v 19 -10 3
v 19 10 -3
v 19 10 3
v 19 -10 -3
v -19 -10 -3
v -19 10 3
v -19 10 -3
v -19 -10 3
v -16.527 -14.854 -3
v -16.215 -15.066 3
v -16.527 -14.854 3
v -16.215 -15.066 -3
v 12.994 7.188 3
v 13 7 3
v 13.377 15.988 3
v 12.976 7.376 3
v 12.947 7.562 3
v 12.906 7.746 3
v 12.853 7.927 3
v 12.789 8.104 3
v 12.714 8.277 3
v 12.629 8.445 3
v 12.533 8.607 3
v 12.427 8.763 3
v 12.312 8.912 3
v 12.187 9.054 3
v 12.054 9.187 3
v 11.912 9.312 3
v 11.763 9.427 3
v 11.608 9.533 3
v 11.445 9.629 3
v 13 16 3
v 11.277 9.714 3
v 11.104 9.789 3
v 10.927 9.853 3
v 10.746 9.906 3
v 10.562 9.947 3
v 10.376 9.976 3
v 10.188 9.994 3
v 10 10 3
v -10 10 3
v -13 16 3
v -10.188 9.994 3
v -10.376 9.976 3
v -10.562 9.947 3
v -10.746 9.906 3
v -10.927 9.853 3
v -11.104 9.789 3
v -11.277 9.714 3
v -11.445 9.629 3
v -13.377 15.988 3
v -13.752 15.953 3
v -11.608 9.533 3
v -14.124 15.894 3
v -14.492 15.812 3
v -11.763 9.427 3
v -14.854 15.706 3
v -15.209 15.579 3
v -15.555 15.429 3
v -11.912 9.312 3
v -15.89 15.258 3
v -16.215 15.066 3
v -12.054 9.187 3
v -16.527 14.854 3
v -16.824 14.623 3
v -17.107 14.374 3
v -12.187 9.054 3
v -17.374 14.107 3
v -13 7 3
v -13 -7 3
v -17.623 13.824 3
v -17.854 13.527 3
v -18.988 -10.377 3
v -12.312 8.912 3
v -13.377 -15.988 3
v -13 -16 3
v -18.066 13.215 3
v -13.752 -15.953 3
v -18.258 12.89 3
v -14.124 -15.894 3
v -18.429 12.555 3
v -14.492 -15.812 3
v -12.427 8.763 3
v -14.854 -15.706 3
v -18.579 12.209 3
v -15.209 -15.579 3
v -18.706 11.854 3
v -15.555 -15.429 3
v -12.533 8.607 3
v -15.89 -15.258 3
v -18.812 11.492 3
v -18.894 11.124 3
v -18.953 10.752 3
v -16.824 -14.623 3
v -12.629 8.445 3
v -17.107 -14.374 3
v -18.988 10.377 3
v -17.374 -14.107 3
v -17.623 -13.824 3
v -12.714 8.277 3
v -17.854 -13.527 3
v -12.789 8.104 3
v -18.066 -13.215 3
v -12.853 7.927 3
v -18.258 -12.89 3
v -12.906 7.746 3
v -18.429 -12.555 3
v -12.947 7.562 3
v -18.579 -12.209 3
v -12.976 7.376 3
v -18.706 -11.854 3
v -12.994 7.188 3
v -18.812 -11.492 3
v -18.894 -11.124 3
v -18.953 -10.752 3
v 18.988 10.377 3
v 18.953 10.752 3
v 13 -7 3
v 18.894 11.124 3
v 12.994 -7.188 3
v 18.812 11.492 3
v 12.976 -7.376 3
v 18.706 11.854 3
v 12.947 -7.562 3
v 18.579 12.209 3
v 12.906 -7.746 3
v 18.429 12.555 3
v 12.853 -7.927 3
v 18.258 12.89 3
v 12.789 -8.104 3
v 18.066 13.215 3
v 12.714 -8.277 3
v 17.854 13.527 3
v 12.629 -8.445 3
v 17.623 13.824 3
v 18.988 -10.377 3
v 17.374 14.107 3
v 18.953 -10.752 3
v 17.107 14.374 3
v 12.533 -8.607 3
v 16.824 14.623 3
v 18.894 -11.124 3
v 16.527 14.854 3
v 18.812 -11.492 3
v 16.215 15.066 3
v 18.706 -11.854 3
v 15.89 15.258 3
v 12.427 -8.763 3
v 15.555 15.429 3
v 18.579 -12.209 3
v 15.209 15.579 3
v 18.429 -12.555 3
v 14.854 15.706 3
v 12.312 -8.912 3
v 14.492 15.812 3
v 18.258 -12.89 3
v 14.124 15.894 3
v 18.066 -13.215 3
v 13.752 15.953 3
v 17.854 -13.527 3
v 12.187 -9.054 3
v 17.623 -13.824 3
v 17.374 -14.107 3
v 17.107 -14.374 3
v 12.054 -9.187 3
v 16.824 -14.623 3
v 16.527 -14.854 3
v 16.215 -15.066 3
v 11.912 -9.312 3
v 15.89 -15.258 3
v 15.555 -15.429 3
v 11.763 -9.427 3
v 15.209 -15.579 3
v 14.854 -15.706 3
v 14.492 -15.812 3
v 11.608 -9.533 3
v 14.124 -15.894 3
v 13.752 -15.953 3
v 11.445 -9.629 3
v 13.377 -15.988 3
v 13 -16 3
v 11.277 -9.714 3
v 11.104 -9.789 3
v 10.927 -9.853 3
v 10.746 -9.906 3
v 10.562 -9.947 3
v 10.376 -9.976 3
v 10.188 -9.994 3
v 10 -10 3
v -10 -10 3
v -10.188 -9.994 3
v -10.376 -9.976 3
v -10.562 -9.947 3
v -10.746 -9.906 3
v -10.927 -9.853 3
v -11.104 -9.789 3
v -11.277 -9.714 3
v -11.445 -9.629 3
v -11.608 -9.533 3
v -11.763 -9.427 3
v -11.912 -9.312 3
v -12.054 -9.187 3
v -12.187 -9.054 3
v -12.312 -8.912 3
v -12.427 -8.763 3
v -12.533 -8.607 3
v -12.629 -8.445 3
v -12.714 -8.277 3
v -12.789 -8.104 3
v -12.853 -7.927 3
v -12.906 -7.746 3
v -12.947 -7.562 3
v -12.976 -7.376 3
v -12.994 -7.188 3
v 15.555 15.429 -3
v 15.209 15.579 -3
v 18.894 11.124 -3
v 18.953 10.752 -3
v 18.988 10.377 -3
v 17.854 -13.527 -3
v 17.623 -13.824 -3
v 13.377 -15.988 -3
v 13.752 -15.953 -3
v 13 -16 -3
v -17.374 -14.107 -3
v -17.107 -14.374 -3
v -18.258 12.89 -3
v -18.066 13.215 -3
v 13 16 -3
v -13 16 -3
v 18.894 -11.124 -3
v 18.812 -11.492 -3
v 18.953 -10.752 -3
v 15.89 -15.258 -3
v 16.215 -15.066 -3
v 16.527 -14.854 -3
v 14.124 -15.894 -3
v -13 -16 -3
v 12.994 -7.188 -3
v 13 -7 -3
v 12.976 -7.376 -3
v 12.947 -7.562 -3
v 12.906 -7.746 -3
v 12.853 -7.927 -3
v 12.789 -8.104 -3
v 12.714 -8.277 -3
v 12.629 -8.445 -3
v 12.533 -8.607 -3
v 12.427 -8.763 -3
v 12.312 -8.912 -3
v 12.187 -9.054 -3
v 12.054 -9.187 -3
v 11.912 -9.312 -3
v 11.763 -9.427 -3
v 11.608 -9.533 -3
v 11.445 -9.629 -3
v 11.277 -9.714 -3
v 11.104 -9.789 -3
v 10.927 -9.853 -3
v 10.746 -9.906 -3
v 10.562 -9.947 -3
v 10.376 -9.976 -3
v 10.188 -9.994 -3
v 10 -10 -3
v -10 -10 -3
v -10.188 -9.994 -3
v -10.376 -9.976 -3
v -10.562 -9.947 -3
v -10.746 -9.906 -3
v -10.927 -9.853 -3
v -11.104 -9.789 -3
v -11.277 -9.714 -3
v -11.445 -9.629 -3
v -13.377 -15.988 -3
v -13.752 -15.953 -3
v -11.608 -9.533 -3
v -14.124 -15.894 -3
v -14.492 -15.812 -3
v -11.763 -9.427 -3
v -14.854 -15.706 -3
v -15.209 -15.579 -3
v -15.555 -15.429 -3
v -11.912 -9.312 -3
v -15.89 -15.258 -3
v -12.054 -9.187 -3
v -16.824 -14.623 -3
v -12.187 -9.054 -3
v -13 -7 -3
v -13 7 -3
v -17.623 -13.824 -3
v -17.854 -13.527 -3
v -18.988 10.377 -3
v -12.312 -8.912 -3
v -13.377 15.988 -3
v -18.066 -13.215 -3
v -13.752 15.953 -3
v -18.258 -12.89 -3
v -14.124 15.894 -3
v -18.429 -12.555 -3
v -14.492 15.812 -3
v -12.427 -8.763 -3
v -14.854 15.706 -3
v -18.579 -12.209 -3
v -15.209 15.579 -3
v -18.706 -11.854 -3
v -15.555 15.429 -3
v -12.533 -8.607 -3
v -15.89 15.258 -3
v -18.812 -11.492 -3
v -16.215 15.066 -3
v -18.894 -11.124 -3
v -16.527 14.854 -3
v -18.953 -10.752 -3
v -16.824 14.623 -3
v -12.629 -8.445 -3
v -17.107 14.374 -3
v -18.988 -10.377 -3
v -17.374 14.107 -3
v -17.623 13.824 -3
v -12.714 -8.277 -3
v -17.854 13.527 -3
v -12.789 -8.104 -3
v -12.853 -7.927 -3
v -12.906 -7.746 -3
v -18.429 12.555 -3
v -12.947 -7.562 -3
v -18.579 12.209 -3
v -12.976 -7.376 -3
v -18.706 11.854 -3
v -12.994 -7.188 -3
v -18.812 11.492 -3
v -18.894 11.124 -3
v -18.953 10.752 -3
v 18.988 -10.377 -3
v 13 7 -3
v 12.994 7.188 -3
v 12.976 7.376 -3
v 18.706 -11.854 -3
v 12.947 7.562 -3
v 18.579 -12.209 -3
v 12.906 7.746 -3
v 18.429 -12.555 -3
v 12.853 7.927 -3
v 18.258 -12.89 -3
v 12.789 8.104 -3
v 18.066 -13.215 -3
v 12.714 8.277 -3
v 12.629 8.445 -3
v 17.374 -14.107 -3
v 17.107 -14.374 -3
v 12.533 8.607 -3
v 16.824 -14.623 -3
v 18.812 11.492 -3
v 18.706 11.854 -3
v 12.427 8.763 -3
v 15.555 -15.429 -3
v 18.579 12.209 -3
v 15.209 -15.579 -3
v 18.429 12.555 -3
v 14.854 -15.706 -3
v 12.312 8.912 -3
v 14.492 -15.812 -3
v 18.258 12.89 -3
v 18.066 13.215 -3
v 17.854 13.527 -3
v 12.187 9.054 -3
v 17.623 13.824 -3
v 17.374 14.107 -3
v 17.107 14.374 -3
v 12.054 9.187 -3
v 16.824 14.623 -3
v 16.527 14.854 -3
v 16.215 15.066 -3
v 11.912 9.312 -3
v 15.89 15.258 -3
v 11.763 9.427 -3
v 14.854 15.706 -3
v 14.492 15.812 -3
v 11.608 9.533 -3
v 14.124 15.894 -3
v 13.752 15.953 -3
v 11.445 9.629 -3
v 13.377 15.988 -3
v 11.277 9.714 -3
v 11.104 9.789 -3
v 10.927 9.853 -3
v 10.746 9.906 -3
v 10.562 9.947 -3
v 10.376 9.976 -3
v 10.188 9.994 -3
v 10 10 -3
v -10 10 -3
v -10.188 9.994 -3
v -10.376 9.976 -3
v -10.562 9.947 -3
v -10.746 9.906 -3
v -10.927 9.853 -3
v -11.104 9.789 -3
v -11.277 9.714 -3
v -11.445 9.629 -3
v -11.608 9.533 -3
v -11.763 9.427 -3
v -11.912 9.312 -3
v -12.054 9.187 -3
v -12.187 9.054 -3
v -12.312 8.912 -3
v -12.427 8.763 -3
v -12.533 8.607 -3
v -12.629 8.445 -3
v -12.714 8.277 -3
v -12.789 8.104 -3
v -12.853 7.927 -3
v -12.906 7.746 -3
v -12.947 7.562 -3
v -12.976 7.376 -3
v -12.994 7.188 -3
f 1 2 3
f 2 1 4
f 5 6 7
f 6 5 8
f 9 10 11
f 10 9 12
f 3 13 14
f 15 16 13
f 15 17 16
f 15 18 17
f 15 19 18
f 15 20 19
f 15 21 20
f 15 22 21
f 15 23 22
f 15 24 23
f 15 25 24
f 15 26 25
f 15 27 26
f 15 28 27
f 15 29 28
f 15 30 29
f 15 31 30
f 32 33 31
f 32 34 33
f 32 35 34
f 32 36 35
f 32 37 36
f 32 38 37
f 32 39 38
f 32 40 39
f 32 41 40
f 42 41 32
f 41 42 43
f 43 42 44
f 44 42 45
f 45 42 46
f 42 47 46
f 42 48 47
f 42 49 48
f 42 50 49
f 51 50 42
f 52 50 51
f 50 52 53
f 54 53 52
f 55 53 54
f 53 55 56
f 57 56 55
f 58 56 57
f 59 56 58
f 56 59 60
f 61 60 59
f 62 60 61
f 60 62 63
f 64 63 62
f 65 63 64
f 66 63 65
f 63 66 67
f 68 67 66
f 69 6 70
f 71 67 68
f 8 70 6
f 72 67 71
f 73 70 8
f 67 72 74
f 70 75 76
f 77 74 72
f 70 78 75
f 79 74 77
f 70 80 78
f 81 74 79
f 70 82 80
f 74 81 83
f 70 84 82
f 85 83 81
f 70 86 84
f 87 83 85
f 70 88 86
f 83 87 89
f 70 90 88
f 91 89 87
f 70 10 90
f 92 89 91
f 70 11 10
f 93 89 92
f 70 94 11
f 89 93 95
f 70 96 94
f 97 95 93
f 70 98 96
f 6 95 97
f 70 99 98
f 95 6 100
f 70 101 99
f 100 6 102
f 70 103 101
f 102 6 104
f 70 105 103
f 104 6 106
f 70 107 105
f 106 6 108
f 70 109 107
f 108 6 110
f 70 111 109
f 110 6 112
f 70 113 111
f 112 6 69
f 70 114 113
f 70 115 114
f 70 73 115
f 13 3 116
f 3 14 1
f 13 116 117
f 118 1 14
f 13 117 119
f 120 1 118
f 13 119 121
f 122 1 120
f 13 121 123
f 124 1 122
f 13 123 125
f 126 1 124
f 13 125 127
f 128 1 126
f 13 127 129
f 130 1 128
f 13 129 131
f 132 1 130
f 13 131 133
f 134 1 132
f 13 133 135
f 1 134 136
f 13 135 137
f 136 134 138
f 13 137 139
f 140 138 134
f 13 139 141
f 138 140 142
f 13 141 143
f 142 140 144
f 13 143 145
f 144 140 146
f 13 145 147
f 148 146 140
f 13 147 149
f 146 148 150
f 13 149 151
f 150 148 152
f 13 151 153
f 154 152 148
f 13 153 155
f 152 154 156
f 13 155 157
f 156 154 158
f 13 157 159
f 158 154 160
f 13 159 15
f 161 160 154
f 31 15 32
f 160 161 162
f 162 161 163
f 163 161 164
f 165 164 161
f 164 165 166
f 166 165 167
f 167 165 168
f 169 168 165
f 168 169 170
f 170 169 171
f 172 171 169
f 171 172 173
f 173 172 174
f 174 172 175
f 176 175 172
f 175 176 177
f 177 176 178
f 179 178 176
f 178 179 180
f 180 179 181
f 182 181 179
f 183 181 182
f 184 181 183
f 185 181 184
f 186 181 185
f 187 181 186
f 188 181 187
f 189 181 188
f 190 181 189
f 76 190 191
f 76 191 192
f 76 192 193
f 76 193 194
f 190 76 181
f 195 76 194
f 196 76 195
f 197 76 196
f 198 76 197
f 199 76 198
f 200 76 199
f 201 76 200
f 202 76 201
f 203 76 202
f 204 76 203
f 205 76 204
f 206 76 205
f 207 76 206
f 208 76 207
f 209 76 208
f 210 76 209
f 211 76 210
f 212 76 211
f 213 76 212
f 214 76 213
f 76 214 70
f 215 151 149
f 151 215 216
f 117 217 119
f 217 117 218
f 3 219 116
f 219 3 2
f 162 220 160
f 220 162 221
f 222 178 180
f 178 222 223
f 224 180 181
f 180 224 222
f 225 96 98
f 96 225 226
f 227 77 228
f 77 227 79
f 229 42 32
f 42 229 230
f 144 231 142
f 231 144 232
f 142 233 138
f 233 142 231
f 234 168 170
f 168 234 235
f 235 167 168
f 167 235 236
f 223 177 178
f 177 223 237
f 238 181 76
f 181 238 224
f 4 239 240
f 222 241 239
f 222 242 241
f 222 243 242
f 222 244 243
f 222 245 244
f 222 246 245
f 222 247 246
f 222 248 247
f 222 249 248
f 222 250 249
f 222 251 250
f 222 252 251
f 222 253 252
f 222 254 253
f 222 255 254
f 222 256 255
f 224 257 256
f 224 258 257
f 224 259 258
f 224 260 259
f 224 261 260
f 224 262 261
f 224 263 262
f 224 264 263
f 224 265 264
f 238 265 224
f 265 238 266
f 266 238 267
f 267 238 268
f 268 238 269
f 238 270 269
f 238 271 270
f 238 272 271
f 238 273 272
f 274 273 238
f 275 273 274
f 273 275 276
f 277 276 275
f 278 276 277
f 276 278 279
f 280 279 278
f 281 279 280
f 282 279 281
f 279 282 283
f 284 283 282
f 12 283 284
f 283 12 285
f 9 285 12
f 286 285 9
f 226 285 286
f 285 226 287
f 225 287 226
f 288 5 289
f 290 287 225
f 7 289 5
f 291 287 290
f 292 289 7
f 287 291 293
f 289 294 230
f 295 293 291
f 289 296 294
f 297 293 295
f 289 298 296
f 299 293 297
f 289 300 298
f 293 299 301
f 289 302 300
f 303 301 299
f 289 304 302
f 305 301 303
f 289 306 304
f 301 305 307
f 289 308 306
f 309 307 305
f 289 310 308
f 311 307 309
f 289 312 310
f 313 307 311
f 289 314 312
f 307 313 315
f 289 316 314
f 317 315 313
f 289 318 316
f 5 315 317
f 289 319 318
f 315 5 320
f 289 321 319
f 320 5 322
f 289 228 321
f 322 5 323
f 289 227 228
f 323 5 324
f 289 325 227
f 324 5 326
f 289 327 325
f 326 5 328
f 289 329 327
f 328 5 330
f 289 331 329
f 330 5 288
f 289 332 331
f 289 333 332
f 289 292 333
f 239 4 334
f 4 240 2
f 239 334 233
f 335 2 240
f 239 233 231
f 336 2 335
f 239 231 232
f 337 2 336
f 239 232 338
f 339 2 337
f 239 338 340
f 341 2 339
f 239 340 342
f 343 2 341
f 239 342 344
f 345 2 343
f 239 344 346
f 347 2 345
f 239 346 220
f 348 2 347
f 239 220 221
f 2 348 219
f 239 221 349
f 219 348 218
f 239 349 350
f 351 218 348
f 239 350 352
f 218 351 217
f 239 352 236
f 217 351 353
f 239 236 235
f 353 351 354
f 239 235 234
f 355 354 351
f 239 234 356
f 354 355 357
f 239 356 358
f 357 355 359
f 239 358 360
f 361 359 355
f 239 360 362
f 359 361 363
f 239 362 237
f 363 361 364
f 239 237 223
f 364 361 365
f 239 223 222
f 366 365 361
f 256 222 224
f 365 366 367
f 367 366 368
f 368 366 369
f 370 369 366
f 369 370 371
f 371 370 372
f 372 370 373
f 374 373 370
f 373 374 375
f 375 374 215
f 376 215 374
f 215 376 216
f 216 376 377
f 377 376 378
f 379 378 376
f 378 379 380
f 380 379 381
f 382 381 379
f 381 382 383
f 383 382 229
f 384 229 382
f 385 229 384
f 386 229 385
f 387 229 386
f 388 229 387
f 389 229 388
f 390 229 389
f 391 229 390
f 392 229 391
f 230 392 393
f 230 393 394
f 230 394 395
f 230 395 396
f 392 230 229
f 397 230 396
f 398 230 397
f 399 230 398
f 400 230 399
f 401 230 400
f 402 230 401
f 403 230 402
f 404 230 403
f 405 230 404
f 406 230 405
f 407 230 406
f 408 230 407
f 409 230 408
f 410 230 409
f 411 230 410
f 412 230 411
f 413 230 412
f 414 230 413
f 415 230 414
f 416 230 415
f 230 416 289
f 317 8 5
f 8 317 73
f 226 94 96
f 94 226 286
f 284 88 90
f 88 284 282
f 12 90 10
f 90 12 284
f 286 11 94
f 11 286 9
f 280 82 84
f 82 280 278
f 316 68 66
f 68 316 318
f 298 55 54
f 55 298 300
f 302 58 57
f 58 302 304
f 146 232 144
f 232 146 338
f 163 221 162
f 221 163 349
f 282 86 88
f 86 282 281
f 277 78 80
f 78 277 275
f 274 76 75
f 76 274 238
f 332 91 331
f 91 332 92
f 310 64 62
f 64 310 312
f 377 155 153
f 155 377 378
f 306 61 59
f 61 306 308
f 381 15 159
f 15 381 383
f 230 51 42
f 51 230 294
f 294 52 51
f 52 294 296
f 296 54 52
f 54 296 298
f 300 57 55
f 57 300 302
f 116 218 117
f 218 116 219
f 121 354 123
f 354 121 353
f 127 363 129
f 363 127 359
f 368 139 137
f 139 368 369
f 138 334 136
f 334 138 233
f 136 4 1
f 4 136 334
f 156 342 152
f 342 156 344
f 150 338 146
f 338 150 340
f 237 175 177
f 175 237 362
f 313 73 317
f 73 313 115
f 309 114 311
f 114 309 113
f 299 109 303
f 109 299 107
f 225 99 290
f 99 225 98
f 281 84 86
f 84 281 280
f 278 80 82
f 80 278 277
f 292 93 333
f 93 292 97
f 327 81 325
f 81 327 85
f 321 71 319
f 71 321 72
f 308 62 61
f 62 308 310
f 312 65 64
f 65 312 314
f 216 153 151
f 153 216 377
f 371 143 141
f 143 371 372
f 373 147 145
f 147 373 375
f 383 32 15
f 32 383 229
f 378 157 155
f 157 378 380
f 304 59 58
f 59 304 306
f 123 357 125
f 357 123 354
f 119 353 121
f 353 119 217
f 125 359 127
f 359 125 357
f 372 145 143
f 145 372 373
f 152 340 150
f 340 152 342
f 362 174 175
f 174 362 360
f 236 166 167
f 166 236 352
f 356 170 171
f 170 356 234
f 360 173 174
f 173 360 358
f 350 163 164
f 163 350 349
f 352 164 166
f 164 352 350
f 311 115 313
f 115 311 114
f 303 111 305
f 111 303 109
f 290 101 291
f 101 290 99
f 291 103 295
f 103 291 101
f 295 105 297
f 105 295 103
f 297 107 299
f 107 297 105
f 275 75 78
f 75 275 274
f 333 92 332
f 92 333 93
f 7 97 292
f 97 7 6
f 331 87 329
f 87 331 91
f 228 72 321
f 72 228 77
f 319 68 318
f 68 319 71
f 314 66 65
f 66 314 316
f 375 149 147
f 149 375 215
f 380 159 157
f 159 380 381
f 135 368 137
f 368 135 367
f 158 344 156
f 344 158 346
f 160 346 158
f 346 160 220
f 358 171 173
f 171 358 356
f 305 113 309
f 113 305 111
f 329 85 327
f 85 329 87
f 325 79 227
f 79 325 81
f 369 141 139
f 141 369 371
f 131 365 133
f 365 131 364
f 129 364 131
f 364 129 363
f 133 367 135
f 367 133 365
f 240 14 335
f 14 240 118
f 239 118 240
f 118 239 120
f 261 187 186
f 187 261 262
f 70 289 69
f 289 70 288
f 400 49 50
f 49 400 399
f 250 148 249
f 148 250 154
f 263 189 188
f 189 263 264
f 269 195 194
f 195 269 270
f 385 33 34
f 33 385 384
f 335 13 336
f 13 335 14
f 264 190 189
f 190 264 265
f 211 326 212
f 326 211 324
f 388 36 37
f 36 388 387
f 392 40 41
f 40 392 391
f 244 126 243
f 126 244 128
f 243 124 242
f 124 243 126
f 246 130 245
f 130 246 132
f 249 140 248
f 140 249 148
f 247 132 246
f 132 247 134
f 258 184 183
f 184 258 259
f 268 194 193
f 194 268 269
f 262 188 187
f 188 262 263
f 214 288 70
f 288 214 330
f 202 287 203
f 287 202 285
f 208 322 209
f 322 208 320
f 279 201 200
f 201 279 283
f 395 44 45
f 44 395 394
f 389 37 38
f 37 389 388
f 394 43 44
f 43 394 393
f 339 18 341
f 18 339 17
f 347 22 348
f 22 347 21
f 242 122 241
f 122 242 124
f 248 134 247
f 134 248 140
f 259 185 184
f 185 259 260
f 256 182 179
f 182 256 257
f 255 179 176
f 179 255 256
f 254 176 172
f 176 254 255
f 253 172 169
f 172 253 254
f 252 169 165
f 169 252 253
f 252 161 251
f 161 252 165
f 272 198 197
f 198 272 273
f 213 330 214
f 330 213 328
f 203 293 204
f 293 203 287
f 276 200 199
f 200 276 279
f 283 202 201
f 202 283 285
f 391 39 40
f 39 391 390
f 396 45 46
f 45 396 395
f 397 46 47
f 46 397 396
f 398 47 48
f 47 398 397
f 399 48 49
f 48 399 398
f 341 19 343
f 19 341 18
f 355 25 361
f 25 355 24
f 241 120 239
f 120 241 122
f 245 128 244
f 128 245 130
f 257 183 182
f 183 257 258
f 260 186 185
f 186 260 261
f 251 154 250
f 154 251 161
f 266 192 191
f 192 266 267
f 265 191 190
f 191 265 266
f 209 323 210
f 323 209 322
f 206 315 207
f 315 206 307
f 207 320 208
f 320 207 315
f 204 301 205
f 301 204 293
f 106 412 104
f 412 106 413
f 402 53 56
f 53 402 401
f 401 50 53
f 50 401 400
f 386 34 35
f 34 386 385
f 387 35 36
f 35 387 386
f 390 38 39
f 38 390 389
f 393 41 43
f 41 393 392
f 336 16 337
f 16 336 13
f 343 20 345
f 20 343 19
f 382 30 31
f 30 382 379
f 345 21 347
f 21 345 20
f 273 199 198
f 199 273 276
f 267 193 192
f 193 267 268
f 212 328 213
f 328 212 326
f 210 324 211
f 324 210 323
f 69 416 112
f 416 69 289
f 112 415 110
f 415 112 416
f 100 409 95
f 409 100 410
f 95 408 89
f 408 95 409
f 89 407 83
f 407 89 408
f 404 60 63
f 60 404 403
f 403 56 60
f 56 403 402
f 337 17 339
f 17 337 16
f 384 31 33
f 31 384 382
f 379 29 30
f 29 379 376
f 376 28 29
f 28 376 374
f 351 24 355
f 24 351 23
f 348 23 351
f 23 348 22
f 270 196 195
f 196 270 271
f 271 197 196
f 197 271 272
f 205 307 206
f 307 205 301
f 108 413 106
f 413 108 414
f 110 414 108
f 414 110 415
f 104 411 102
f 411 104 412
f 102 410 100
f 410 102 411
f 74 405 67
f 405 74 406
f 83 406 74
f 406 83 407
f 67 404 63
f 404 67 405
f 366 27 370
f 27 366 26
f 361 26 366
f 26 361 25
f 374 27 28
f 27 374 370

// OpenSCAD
Largeur=20;   //Largeur interieure
Hauteur=20;   //Hauteur interieure
Epaisseur=6;  //Epaisseur de la piece
Angle=6;     //Diametre cercle aux angles

//Pour corriger la visu dans la fenetre preview
epsilon=0.01;
//Pour debug (cube rouge taille demandée, cubes verts pour verif des epaisseurs)
DEBUG=0;

$fn=100;
difference(){
   minkowski(){
      cube([Largeur+Epaisseur,Hauteur+Epaisseur-Angle,Epaisseur-1],center=true);
      cylinder(d=Angle+Epaisseur,h=1,center=true);
   }
   minkowski(){
      cube([Largeur,Hauteur-Angle,Epaisseur-1],center=true);
      cylinder(d=Angle,h=1+epsilon,center=true);
   }
}

if(DEBUG==1){
   color("red")cube([Largeur,Hauteur,Epaisseur],center=true);
   translate([21,0,0])color("green")cube([Epaisseur,Epaisseur,Epaisseur],center=true);
   translate([0,8,0])color("green")cube([Epaisseur,Epaisseur,Epaisseur],center=true);
}
